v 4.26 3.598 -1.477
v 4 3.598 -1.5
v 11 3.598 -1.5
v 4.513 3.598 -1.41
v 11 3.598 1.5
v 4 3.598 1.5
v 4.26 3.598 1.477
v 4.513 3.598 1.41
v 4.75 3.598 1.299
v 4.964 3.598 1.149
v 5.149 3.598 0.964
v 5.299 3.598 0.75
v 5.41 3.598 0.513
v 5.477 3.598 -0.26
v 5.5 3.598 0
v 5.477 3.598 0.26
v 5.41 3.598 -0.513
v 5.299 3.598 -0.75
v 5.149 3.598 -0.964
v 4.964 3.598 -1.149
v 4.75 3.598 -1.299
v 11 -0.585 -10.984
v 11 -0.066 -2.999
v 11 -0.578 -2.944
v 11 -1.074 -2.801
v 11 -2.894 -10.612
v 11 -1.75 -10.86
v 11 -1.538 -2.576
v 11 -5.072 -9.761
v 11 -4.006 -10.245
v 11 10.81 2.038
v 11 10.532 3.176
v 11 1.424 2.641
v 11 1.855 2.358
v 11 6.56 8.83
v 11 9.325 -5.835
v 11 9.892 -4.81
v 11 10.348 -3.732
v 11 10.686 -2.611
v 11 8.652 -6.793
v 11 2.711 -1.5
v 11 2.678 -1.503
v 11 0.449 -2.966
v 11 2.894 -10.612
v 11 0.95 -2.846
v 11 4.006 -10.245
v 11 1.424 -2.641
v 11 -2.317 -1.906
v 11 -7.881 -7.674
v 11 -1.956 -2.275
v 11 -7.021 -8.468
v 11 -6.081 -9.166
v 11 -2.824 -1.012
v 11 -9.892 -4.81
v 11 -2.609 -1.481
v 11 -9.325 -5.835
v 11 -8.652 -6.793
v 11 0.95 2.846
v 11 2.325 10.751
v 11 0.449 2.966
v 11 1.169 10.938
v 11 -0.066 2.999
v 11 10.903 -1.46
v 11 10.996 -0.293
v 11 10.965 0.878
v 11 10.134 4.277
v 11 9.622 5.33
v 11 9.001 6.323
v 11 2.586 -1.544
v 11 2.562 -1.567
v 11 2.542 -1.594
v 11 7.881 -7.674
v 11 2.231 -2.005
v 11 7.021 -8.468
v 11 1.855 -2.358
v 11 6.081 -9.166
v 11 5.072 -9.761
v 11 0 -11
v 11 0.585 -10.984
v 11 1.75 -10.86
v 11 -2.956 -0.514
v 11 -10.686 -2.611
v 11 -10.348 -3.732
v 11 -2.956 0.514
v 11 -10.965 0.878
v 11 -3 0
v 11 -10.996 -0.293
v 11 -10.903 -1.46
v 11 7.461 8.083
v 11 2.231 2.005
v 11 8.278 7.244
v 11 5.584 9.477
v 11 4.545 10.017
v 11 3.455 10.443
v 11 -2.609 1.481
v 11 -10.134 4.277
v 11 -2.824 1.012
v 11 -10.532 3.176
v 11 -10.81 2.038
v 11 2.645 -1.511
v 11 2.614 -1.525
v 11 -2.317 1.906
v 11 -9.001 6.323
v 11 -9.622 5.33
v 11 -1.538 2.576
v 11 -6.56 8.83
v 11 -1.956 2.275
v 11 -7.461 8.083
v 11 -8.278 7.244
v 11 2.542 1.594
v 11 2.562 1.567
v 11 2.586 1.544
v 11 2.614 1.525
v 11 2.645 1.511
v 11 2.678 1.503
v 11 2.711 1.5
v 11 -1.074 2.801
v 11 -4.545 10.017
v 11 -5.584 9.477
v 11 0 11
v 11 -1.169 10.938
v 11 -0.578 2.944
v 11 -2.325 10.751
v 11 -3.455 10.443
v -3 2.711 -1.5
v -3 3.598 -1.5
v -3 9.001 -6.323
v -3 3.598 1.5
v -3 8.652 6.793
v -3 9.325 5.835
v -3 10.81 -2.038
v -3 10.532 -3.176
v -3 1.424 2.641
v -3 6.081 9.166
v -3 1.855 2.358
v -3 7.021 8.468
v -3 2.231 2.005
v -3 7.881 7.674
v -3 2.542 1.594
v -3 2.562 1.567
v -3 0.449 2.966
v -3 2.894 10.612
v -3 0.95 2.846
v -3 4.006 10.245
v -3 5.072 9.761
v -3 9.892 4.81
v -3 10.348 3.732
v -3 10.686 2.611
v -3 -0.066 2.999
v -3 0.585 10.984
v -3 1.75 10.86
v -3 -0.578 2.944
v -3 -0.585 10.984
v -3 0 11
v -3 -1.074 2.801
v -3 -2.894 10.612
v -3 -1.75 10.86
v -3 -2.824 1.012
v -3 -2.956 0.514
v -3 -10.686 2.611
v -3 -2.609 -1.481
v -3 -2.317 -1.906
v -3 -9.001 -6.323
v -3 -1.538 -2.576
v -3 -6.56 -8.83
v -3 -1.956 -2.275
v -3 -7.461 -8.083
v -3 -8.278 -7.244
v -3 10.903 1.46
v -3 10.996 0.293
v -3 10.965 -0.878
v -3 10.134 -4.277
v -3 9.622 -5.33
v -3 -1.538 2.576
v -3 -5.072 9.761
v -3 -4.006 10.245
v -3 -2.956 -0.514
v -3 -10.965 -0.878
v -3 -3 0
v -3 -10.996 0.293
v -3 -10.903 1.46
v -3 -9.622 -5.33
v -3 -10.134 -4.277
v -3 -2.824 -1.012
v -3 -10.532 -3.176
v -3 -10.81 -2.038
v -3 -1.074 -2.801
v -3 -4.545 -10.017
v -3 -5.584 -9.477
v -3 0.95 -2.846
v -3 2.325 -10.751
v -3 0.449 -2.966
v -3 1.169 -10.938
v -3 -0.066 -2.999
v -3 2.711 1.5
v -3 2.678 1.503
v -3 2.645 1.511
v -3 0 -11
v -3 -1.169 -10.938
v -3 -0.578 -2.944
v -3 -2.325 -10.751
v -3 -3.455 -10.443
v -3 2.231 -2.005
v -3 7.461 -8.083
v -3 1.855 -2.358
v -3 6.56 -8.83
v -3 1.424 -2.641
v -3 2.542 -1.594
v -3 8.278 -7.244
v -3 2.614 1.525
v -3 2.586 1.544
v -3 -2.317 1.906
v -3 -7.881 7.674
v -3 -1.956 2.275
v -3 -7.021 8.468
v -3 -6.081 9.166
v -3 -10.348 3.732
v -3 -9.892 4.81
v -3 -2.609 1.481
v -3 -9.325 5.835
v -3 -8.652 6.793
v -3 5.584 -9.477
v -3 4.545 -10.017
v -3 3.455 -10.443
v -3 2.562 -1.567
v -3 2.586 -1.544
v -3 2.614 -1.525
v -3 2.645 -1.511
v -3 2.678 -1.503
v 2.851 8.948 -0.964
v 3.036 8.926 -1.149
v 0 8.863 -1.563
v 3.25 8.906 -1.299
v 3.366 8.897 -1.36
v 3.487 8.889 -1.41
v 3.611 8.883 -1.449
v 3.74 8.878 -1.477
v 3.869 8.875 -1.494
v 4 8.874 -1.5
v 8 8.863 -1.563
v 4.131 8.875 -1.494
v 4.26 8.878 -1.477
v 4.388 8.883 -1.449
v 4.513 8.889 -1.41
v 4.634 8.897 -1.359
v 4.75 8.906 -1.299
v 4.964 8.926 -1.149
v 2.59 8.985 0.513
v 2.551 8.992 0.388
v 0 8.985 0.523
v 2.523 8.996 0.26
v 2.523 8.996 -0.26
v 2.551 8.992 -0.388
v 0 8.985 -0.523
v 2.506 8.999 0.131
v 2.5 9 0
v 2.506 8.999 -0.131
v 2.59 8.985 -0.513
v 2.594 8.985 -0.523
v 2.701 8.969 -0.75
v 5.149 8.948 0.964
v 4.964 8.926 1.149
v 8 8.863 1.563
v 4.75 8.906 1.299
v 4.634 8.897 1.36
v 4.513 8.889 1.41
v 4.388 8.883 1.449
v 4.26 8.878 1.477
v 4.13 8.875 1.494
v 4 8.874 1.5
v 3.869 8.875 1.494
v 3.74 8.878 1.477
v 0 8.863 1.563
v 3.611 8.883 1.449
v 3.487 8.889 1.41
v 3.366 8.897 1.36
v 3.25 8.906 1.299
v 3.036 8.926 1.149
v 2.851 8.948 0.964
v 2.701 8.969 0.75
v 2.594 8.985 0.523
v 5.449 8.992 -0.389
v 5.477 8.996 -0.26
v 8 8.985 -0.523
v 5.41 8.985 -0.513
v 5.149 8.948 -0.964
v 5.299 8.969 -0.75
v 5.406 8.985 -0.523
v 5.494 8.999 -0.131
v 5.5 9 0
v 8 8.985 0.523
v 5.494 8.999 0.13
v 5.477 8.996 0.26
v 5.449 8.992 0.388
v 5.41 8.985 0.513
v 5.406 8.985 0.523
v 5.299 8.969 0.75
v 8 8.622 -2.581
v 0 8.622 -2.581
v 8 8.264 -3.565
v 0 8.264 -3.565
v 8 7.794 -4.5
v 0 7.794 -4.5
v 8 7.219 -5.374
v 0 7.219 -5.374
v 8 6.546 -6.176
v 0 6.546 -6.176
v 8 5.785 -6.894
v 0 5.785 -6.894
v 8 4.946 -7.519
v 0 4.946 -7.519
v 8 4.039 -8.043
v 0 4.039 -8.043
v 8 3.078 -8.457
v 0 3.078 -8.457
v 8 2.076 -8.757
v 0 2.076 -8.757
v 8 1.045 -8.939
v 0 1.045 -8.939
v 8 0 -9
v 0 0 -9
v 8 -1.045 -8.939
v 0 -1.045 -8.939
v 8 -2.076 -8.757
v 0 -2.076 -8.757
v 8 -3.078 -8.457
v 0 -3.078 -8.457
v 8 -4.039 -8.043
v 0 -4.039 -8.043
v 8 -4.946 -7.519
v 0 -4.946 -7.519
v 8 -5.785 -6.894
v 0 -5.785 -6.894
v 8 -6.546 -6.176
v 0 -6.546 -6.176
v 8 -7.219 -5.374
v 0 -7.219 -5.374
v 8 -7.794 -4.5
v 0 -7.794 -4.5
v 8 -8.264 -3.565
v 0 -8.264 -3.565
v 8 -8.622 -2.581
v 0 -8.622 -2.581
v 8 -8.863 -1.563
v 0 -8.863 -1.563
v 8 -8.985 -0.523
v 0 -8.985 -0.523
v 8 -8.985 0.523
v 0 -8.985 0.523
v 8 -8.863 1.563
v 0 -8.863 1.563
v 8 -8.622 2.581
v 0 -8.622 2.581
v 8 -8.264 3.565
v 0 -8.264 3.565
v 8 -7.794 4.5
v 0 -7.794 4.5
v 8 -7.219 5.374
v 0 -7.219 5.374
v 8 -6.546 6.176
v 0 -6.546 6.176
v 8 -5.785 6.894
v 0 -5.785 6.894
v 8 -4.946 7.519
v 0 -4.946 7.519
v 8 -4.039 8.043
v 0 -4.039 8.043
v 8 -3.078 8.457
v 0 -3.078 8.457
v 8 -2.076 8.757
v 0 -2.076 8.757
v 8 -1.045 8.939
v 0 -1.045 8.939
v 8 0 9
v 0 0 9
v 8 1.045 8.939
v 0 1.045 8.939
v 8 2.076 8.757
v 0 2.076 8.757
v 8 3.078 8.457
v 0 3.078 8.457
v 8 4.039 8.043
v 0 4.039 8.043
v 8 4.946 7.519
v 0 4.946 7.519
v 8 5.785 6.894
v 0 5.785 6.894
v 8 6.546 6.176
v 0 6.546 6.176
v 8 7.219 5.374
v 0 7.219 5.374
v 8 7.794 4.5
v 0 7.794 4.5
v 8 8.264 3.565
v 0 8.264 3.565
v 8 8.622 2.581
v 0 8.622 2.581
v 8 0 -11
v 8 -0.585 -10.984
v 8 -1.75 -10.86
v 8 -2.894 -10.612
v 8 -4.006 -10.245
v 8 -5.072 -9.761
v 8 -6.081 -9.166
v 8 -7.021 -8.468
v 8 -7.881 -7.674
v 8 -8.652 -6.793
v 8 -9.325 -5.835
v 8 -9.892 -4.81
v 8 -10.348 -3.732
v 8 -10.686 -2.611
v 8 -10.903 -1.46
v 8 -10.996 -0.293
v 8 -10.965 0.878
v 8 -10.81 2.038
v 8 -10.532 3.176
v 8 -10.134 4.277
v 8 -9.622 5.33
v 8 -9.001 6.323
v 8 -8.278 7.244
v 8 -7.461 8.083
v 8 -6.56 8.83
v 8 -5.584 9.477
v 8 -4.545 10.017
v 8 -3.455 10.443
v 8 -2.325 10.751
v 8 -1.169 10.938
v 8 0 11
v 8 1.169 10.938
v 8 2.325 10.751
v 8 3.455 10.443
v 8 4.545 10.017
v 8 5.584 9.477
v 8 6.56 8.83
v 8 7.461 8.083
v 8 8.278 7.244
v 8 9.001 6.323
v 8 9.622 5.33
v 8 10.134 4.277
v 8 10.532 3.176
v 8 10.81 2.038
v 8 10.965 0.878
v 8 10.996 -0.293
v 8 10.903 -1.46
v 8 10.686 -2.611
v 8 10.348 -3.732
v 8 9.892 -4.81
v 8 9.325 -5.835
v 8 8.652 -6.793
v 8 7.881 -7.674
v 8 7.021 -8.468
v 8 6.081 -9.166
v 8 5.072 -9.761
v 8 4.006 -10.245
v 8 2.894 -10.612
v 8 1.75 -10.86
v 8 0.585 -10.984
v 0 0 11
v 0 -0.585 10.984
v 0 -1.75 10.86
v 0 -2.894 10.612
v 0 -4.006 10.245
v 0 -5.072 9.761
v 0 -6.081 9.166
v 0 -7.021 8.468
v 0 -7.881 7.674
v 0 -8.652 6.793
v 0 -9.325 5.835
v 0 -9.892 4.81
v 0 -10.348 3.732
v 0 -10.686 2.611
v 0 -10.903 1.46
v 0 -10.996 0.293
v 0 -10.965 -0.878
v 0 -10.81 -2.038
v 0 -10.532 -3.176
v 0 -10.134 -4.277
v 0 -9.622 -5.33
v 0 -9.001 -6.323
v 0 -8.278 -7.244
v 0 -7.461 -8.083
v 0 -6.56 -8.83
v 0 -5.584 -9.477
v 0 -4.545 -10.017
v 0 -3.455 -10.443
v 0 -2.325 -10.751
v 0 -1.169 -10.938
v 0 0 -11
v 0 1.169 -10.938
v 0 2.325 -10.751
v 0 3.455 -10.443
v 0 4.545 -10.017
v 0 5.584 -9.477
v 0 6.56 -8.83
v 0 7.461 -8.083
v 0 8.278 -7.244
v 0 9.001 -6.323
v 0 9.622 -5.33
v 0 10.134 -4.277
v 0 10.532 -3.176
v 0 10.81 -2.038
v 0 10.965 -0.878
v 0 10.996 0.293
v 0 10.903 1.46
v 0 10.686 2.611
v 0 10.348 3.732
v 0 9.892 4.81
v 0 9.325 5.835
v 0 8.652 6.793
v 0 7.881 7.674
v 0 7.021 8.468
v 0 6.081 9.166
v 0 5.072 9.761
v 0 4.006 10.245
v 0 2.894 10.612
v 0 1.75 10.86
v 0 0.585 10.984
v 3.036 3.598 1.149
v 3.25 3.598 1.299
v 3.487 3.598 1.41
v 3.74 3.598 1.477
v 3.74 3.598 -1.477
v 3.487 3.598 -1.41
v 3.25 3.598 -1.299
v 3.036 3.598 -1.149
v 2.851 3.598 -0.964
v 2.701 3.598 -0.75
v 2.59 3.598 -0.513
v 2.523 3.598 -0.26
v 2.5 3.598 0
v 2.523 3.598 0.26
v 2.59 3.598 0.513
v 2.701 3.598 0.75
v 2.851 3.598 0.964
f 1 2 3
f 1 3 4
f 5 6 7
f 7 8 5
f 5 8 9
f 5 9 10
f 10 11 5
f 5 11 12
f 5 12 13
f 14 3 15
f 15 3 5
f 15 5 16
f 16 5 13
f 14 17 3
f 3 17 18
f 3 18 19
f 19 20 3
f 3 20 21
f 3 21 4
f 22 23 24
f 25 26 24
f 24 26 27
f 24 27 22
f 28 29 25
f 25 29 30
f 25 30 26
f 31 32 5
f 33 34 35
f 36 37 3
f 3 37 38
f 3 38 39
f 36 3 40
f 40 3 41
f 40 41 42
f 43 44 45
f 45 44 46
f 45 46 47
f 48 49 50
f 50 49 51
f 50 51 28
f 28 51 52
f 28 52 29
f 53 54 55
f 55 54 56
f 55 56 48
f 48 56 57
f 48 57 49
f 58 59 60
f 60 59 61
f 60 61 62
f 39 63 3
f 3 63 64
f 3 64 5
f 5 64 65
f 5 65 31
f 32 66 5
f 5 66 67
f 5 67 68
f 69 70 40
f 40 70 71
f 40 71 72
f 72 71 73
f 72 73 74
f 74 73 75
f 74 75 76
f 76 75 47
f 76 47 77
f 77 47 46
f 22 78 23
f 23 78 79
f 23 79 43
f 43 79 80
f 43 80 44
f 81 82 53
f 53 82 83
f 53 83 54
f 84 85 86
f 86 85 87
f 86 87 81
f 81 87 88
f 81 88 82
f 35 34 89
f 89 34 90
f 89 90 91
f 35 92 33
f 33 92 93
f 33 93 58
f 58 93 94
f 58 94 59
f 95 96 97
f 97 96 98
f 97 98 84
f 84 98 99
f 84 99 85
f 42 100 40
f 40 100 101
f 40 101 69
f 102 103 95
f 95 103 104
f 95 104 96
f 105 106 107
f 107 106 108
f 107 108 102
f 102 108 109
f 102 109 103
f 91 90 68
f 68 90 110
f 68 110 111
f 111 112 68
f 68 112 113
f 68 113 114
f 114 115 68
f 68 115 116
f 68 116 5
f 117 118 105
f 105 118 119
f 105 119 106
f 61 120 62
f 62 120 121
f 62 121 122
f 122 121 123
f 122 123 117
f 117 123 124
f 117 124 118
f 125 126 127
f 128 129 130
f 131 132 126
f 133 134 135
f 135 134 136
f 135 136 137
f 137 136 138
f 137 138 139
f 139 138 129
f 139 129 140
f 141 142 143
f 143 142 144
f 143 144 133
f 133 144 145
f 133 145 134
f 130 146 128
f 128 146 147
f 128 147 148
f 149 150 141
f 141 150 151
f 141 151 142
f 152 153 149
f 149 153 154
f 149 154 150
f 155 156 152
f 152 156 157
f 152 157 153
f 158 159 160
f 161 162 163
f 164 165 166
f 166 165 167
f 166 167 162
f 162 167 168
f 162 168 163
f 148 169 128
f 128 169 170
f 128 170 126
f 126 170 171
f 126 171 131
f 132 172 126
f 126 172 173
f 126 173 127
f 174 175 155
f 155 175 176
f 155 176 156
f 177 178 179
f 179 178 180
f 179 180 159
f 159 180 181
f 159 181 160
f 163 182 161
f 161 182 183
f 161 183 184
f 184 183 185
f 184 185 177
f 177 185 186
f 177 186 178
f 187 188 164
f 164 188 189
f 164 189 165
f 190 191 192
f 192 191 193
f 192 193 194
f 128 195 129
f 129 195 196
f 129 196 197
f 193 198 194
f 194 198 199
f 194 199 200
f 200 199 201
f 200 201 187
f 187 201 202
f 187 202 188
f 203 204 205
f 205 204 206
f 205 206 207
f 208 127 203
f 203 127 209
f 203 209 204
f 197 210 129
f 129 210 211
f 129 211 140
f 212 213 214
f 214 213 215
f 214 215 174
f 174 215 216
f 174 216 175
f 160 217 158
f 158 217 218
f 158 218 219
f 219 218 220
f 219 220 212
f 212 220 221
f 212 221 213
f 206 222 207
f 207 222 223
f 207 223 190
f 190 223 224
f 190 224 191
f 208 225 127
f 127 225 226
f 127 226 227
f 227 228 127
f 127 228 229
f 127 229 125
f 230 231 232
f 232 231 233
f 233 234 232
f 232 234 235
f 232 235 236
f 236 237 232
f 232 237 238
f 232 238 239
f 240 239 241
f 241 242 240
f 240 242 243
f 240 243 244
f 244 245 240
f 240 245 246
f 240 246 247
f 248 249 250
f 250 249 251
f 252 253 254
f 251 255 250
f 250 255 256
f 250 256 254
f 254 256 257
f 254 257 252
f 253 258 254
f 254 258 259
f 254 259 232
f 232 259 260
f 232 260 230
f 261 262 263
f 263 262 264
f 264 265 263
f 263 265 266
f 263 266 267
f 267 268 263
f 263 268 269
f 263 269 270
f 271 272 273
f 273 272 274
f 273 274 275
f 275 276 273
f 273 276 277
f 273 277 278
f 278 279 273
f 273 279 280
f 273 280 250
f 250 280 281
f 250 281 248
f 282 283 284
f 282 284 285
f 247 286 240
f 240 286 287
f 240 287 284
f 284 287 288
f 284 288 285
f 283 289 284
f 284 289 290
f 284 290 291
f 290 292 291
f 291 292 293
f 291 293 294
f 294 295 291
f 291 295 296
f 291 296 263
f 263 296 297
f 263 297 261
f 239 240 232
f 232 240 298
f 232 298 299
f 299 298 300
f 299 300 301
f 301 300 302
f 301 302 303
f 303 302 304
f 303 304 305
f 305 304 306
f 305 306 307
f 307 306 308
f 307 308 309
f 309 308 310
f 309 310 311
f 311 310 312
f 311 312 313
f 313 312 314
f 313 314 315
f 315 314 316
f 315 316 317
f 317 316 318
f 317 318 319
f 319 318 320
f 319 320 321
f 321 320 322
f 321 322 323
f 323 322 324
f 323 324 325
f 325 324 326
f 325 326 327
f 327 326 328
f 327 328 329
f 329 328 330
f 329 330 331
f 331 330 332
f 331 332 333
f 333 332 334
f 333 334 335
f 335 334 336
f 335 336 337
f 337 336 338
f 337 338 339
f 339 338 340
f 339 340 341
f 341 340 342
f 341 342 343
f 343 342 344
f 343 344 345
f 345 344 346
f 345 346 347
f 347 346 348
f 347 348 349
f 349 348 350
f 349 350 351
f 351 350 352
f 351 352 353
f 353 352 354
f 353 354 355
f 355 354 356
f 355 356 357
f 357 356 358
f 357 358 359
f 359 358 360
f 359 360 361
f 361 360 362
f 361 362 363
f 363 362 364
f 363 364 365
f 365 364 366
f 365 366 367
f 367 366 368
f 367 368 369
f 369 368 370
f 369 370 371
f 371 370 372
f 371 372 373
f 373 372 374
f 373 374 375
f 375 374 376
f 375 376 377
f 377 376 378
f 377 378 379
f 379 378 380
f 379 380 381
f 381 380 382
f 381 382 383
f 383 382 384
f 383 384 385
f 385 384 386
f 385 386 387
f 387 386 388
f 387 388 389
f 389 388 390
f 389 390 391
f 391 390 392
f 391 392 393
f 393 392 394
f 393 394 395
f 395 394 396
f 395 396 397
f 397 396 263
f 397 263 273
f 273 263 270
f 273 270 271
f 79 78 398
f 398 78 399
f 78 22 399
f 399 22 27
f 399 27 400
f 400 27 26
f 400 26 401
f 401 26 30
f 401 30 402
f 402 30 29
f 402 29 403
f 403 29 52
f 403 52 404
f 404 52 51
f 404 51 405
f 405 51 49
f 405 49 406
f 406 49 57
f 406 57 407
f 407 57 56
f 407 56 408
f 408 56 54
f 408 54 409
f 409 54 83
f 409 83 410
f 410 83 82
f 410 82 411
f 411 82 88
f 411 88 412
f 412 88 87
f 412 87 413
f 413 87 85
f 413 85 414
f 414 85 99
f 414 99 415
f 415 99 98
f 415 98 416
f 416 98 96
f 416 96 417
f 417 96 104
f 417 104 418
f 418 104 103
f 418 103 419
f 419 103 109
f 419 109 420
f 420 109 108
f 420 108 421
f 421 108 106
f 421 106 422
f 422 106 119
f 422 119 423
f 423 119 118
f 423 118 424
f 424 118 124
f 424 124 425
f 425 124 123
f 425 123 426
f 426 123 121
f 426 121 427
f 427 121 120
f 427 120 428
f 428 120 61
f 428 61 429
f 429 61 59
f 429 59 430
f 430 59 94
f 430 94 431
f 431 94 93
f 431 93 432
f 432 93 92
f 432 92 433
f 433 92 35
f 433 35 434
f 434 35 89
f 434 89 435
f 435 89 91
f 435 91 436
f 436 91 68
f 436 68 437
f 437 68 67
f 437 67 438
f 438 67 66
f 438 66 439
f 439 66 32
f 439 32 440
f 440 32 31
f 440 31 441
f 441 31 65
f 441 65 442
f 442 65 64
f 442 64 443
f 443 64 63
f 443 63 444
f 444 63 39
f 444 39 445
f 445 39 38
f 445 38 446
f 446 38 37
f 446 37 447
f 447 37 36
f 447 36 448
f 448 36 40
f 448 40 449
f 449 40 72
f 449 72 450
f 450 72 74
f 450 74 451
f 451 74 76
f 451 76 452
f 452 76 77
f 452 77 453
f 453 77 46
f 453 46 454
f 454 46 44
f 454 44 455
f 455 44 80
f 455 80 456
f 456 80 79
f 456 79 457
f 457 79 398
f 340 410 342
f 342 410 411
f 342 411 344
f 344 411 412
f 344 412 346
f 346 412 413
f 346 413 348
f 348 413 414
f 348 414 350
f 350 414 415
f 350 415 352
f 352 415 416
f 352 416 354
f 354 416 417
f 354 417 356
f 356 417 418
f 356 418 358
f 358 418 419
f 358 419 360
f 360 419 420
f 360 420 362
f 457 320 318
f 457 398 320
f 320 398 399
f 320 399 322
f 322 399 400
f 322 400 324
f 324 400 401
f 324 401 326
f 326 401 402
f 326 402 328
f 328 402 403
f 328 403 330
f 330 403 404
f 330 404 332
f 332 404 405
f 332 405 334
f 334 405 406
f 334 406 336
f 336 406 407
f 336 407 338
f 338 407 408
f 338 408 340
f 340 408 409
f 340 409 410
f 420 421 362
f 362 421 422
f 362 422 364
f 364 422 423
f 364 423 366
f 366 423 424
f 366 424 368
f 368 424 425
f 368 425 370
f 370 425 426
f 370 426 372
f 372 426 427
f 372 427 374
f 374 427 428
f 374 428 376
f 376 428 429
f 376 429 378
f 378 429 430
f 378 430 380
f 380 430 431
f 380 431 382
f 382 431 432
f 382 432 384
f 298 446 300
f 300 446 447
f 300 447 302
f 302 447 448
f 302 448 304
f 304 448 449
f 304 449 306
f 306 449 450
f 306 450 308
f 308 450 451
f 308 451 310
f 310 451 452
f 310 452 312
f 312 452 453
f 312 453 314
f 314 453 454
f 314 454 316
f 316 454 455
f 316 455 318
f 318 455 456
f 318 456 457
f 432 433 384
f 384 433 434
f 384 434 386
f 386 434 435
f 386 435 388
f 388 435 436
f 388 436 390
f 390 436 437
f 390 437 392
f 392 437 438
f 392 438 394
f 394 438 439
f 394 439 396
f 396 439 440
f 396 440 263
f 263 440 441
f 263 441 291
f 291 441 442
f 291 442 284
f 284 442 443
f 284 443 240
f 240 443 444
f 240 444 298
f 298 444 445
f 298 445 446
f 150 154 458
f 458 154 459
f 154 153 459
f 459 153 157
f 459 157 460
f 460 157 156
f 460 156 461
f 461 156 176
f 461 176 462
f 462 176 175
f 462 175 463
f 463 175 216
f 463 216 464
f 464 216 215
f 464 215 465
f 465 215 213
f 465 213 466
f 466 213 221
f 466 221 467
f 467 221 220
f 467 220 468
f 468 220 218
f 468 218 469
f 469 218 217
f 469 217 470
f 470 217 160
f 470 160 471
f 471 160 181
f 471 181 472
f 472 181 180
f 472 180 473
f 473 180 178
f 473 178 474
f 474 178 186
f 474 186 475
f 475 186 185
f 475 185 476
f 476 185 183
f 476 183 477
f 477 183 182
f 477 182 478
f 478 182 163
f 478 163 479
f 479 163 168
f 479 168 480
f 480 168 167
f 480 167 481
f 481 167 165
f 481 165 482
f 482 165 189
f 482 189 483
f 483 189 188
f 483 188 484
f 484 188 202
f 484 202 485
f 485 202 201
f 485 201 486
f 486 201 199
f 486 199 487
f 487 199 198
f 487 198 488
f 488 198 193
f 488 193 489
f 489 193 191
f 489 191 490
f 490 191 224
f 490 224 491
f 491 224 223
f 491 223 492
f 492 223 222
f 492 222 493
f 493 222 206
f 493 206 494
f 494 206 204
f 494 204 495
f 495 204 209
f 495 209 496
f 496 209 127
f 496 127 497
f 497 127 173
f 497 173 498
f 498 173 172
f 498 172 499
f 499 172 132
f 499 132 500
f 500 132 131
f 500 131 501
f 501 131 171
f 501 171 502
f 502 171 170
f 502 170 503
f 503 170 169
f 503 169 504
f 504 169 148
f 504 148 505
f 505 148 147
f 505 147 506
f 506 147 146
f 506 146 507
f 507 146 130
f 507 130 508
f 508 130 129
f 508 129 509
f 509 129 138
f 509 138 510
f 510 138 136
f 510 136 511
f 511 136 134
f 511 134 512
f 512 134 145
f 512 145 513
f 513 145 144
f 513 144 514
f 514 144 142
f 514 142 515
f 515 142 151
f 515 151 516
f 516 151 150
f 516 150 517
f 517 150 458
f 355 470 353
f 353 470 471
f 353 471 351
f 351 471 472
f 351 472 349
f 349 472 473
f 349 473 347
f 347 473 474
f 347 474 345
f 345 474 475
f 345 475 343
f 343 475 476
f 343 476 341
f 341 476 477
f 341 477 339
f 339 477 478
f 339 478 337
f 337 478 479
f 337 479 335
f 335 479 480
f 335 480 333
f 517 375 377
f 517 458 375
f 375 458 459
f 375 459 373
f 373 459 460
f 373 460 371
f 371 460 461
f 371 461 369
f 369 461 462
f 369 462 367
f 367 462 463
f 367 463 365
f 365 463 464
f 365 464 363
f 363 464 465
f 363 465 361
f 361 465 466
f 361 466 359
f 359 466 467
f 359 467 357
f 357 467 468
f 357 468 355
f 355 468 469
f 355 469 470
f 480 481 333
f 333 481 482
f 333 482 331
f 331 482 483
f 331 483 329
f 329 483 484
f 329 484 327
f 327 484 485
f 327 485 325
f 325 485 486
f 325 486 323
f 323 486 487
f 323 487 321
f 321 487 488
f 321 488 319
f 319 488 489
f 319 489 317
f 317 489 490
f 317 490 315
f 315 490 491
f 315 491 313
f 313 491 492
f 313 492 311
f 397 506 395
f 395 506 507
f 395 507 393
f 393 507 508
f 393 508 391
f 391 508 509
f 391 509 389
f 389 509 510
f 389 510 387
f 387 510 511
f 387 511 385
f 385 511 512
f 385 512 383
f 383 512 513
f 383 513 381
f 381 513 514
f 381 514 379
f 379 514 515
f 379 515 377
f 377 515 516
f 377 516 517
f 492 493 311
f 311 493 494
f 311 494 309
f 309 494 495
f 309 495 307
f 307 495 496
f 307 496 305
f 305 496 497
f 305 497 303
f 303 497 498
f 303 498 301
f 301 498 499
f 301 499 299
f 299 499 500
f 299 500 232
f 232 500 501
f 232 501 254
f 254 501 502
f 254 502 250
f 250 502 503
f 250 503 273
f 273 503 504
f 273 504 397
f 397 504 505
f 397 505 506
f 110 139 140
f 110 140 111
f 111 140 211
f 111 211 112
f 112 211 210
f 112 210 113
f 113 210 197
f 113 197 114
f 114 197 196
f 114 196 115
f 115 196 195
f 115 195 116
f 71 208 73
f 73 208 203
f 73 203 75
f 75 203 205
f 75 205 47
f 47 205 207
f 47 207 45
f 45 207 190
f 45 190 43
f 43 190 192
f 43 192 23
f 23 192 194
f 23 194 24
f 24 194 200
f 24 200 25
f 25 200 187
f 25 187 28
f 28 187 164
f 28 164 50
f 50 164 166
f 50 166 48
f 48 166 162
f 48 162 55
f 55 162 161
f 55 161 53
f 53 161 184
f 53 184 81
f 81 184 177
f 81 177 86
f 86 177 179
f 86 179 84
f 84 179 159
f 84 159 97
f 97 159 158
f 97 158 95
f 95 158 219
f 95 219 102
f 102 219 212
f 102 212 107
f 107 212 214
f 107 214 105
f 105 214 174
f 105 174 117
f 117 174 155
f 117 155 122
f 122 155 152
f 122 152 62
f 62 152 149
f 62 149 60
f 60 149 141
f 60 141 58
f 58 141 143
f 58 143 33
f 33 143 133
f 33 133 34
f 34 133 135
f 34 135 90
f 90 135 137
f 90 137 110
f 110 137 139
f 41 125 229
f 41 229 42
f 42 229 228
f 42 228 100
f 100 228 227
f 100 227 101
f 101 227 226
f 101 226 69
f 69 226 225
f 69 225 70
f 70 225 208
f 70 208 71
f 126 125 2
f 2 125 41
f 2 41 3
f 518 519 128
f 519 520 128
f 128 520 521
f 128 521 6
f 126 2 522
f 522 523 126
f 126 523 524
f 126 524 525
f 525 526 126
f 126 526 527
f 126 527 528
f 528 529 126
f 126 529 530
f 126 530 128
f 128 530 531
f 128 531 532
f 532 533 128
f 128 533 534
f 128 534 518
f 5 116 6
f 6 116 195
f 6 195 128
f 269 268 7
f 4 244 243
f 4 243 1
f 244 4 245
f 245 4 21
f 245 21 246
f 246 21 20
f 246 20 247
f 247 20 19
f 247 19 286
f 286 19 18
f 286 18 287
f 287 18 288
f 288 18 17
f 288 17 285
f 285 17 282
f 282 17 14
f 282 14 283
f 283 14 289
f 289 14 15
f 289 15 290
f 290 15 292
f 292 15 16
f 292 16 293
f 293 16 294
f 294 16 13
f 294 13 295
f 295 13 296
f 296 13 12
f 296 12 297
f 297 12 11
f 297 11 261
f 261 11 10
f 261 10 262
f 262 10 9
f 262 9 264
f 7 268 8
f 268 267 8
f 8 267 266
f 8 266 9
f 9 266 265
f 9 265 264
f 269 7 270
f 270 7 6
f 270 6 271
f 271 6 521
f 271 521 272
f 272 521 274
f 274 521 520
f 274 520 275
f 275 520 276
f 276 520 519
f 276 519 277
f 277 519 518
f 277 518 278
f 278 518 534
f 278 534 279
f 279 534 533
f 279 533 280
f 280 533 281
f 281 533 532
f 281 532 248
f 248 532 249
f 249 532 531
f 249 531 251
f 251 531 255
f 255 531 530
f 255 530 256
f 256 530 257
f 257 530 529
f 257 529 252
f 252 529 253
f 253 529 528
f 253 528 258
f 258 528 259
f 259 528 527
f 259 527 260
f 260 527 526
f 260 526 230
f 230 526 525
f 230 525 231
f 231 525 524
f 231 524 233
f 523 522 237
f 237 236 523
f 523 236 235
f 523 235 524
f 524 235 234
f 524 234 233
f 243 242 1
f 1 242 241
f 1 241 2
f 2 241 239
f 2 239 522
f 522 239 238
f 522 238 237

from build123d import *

# Parameters (mm, degrees)
SKETCH1_R               = 9
BOSS_EXTRUDE1_DEPTH     = 8
SKETCH3_R               = 11
BOSS_EXTRUDE2_DEPTH     = 3
SKETCH4_R               = 11
BOSS_EXTRUDE3_DEPTH     = 3
CUT_EXTRUDE2_DEPTH      = 3
CUT_EXTRUDE2_DEPTH_BACK = 11
SKETCH6_R               = 1.5
CUT_EXTRUDE3_DEPTH      = 6


with BuildPart() as part:
    # Sketch1 → Boss-Extrude1 (new body)
    with BuildSketch(Plane(origin=(0, 0, 0), x_dir=(0, 0, -1), z_dir=(1, 0, 0))):
        Circle(SKETCH1_R)
    extrude(amount=BOSS_EXTRUDE1_DEPTH)

    # Sketch3 → Boss-Extrude2 (add)
    with BuildSketch(Plane(origin=(8, 0, 0), x_dir=(0, 0, -1), z_dir=(1, 0, 0))):
        Circle(SKETCH3_R)
    extrude(amount=BOSS_EXTRUDE2_DEPTH)

    # Sketch4 → Boss-Extrude3 (add)
    with BuildSketch(Plane.ZY):
        Circle(SKETCH4_R)
    extrude(amount=BOSS_EXTRUDE3_DEPTH)

    # Sketch2 → Cut-Extrude2 (cut, two sides)
    with BuildSketch(Plane(origin=(8, 0, 0), x_dir=(0, 0, -1), z_dir=(1, 0, 0))) as cut_extrude2_sk:
        with BuildLine():
            Line((-1.5, 3.598076211), (1.5, 3.598076211))
            Line((1.5, 3.598076211), (1.5, 2.711088342))
            ThreePointArc((1.5, 2.711088342), (1.525, 2.614263759), (1.59375, 2.541645321))
            ThreePointArc((1.59375, 2.541645321), (0, -3), (-1.59375, 2.541645321))
            ThreePointArc((-1.59375, 2.541645321), (-1.525, 2.614263759), (-1.5, 2.711088342))
            Line((-1.5, 2.711088342), (-1.5, 3.598076211))
        make_face()
    extrude(amount=CUT_EXTRUDE2_DEPTH, mode=Mode.SUBTRACT)
    extrude(cut_extrude2_sk.sketch, amount=-CUT_EXTRUDE2_DEPTH_BACK, mode=Mode.SUBTRACT)

    # Sketch6 → Cut-Extrude3 (cut)
    with BuildSketch(Plane.XZ.offset(-3.598076211)):
        with Locations((4, 0)):
            Circle(SKETCH6_R)
    extrude(amount=-CUT_EXTRUDE3_DEPTH, mode=Mode.SUBTRACT)


solid = part.part
